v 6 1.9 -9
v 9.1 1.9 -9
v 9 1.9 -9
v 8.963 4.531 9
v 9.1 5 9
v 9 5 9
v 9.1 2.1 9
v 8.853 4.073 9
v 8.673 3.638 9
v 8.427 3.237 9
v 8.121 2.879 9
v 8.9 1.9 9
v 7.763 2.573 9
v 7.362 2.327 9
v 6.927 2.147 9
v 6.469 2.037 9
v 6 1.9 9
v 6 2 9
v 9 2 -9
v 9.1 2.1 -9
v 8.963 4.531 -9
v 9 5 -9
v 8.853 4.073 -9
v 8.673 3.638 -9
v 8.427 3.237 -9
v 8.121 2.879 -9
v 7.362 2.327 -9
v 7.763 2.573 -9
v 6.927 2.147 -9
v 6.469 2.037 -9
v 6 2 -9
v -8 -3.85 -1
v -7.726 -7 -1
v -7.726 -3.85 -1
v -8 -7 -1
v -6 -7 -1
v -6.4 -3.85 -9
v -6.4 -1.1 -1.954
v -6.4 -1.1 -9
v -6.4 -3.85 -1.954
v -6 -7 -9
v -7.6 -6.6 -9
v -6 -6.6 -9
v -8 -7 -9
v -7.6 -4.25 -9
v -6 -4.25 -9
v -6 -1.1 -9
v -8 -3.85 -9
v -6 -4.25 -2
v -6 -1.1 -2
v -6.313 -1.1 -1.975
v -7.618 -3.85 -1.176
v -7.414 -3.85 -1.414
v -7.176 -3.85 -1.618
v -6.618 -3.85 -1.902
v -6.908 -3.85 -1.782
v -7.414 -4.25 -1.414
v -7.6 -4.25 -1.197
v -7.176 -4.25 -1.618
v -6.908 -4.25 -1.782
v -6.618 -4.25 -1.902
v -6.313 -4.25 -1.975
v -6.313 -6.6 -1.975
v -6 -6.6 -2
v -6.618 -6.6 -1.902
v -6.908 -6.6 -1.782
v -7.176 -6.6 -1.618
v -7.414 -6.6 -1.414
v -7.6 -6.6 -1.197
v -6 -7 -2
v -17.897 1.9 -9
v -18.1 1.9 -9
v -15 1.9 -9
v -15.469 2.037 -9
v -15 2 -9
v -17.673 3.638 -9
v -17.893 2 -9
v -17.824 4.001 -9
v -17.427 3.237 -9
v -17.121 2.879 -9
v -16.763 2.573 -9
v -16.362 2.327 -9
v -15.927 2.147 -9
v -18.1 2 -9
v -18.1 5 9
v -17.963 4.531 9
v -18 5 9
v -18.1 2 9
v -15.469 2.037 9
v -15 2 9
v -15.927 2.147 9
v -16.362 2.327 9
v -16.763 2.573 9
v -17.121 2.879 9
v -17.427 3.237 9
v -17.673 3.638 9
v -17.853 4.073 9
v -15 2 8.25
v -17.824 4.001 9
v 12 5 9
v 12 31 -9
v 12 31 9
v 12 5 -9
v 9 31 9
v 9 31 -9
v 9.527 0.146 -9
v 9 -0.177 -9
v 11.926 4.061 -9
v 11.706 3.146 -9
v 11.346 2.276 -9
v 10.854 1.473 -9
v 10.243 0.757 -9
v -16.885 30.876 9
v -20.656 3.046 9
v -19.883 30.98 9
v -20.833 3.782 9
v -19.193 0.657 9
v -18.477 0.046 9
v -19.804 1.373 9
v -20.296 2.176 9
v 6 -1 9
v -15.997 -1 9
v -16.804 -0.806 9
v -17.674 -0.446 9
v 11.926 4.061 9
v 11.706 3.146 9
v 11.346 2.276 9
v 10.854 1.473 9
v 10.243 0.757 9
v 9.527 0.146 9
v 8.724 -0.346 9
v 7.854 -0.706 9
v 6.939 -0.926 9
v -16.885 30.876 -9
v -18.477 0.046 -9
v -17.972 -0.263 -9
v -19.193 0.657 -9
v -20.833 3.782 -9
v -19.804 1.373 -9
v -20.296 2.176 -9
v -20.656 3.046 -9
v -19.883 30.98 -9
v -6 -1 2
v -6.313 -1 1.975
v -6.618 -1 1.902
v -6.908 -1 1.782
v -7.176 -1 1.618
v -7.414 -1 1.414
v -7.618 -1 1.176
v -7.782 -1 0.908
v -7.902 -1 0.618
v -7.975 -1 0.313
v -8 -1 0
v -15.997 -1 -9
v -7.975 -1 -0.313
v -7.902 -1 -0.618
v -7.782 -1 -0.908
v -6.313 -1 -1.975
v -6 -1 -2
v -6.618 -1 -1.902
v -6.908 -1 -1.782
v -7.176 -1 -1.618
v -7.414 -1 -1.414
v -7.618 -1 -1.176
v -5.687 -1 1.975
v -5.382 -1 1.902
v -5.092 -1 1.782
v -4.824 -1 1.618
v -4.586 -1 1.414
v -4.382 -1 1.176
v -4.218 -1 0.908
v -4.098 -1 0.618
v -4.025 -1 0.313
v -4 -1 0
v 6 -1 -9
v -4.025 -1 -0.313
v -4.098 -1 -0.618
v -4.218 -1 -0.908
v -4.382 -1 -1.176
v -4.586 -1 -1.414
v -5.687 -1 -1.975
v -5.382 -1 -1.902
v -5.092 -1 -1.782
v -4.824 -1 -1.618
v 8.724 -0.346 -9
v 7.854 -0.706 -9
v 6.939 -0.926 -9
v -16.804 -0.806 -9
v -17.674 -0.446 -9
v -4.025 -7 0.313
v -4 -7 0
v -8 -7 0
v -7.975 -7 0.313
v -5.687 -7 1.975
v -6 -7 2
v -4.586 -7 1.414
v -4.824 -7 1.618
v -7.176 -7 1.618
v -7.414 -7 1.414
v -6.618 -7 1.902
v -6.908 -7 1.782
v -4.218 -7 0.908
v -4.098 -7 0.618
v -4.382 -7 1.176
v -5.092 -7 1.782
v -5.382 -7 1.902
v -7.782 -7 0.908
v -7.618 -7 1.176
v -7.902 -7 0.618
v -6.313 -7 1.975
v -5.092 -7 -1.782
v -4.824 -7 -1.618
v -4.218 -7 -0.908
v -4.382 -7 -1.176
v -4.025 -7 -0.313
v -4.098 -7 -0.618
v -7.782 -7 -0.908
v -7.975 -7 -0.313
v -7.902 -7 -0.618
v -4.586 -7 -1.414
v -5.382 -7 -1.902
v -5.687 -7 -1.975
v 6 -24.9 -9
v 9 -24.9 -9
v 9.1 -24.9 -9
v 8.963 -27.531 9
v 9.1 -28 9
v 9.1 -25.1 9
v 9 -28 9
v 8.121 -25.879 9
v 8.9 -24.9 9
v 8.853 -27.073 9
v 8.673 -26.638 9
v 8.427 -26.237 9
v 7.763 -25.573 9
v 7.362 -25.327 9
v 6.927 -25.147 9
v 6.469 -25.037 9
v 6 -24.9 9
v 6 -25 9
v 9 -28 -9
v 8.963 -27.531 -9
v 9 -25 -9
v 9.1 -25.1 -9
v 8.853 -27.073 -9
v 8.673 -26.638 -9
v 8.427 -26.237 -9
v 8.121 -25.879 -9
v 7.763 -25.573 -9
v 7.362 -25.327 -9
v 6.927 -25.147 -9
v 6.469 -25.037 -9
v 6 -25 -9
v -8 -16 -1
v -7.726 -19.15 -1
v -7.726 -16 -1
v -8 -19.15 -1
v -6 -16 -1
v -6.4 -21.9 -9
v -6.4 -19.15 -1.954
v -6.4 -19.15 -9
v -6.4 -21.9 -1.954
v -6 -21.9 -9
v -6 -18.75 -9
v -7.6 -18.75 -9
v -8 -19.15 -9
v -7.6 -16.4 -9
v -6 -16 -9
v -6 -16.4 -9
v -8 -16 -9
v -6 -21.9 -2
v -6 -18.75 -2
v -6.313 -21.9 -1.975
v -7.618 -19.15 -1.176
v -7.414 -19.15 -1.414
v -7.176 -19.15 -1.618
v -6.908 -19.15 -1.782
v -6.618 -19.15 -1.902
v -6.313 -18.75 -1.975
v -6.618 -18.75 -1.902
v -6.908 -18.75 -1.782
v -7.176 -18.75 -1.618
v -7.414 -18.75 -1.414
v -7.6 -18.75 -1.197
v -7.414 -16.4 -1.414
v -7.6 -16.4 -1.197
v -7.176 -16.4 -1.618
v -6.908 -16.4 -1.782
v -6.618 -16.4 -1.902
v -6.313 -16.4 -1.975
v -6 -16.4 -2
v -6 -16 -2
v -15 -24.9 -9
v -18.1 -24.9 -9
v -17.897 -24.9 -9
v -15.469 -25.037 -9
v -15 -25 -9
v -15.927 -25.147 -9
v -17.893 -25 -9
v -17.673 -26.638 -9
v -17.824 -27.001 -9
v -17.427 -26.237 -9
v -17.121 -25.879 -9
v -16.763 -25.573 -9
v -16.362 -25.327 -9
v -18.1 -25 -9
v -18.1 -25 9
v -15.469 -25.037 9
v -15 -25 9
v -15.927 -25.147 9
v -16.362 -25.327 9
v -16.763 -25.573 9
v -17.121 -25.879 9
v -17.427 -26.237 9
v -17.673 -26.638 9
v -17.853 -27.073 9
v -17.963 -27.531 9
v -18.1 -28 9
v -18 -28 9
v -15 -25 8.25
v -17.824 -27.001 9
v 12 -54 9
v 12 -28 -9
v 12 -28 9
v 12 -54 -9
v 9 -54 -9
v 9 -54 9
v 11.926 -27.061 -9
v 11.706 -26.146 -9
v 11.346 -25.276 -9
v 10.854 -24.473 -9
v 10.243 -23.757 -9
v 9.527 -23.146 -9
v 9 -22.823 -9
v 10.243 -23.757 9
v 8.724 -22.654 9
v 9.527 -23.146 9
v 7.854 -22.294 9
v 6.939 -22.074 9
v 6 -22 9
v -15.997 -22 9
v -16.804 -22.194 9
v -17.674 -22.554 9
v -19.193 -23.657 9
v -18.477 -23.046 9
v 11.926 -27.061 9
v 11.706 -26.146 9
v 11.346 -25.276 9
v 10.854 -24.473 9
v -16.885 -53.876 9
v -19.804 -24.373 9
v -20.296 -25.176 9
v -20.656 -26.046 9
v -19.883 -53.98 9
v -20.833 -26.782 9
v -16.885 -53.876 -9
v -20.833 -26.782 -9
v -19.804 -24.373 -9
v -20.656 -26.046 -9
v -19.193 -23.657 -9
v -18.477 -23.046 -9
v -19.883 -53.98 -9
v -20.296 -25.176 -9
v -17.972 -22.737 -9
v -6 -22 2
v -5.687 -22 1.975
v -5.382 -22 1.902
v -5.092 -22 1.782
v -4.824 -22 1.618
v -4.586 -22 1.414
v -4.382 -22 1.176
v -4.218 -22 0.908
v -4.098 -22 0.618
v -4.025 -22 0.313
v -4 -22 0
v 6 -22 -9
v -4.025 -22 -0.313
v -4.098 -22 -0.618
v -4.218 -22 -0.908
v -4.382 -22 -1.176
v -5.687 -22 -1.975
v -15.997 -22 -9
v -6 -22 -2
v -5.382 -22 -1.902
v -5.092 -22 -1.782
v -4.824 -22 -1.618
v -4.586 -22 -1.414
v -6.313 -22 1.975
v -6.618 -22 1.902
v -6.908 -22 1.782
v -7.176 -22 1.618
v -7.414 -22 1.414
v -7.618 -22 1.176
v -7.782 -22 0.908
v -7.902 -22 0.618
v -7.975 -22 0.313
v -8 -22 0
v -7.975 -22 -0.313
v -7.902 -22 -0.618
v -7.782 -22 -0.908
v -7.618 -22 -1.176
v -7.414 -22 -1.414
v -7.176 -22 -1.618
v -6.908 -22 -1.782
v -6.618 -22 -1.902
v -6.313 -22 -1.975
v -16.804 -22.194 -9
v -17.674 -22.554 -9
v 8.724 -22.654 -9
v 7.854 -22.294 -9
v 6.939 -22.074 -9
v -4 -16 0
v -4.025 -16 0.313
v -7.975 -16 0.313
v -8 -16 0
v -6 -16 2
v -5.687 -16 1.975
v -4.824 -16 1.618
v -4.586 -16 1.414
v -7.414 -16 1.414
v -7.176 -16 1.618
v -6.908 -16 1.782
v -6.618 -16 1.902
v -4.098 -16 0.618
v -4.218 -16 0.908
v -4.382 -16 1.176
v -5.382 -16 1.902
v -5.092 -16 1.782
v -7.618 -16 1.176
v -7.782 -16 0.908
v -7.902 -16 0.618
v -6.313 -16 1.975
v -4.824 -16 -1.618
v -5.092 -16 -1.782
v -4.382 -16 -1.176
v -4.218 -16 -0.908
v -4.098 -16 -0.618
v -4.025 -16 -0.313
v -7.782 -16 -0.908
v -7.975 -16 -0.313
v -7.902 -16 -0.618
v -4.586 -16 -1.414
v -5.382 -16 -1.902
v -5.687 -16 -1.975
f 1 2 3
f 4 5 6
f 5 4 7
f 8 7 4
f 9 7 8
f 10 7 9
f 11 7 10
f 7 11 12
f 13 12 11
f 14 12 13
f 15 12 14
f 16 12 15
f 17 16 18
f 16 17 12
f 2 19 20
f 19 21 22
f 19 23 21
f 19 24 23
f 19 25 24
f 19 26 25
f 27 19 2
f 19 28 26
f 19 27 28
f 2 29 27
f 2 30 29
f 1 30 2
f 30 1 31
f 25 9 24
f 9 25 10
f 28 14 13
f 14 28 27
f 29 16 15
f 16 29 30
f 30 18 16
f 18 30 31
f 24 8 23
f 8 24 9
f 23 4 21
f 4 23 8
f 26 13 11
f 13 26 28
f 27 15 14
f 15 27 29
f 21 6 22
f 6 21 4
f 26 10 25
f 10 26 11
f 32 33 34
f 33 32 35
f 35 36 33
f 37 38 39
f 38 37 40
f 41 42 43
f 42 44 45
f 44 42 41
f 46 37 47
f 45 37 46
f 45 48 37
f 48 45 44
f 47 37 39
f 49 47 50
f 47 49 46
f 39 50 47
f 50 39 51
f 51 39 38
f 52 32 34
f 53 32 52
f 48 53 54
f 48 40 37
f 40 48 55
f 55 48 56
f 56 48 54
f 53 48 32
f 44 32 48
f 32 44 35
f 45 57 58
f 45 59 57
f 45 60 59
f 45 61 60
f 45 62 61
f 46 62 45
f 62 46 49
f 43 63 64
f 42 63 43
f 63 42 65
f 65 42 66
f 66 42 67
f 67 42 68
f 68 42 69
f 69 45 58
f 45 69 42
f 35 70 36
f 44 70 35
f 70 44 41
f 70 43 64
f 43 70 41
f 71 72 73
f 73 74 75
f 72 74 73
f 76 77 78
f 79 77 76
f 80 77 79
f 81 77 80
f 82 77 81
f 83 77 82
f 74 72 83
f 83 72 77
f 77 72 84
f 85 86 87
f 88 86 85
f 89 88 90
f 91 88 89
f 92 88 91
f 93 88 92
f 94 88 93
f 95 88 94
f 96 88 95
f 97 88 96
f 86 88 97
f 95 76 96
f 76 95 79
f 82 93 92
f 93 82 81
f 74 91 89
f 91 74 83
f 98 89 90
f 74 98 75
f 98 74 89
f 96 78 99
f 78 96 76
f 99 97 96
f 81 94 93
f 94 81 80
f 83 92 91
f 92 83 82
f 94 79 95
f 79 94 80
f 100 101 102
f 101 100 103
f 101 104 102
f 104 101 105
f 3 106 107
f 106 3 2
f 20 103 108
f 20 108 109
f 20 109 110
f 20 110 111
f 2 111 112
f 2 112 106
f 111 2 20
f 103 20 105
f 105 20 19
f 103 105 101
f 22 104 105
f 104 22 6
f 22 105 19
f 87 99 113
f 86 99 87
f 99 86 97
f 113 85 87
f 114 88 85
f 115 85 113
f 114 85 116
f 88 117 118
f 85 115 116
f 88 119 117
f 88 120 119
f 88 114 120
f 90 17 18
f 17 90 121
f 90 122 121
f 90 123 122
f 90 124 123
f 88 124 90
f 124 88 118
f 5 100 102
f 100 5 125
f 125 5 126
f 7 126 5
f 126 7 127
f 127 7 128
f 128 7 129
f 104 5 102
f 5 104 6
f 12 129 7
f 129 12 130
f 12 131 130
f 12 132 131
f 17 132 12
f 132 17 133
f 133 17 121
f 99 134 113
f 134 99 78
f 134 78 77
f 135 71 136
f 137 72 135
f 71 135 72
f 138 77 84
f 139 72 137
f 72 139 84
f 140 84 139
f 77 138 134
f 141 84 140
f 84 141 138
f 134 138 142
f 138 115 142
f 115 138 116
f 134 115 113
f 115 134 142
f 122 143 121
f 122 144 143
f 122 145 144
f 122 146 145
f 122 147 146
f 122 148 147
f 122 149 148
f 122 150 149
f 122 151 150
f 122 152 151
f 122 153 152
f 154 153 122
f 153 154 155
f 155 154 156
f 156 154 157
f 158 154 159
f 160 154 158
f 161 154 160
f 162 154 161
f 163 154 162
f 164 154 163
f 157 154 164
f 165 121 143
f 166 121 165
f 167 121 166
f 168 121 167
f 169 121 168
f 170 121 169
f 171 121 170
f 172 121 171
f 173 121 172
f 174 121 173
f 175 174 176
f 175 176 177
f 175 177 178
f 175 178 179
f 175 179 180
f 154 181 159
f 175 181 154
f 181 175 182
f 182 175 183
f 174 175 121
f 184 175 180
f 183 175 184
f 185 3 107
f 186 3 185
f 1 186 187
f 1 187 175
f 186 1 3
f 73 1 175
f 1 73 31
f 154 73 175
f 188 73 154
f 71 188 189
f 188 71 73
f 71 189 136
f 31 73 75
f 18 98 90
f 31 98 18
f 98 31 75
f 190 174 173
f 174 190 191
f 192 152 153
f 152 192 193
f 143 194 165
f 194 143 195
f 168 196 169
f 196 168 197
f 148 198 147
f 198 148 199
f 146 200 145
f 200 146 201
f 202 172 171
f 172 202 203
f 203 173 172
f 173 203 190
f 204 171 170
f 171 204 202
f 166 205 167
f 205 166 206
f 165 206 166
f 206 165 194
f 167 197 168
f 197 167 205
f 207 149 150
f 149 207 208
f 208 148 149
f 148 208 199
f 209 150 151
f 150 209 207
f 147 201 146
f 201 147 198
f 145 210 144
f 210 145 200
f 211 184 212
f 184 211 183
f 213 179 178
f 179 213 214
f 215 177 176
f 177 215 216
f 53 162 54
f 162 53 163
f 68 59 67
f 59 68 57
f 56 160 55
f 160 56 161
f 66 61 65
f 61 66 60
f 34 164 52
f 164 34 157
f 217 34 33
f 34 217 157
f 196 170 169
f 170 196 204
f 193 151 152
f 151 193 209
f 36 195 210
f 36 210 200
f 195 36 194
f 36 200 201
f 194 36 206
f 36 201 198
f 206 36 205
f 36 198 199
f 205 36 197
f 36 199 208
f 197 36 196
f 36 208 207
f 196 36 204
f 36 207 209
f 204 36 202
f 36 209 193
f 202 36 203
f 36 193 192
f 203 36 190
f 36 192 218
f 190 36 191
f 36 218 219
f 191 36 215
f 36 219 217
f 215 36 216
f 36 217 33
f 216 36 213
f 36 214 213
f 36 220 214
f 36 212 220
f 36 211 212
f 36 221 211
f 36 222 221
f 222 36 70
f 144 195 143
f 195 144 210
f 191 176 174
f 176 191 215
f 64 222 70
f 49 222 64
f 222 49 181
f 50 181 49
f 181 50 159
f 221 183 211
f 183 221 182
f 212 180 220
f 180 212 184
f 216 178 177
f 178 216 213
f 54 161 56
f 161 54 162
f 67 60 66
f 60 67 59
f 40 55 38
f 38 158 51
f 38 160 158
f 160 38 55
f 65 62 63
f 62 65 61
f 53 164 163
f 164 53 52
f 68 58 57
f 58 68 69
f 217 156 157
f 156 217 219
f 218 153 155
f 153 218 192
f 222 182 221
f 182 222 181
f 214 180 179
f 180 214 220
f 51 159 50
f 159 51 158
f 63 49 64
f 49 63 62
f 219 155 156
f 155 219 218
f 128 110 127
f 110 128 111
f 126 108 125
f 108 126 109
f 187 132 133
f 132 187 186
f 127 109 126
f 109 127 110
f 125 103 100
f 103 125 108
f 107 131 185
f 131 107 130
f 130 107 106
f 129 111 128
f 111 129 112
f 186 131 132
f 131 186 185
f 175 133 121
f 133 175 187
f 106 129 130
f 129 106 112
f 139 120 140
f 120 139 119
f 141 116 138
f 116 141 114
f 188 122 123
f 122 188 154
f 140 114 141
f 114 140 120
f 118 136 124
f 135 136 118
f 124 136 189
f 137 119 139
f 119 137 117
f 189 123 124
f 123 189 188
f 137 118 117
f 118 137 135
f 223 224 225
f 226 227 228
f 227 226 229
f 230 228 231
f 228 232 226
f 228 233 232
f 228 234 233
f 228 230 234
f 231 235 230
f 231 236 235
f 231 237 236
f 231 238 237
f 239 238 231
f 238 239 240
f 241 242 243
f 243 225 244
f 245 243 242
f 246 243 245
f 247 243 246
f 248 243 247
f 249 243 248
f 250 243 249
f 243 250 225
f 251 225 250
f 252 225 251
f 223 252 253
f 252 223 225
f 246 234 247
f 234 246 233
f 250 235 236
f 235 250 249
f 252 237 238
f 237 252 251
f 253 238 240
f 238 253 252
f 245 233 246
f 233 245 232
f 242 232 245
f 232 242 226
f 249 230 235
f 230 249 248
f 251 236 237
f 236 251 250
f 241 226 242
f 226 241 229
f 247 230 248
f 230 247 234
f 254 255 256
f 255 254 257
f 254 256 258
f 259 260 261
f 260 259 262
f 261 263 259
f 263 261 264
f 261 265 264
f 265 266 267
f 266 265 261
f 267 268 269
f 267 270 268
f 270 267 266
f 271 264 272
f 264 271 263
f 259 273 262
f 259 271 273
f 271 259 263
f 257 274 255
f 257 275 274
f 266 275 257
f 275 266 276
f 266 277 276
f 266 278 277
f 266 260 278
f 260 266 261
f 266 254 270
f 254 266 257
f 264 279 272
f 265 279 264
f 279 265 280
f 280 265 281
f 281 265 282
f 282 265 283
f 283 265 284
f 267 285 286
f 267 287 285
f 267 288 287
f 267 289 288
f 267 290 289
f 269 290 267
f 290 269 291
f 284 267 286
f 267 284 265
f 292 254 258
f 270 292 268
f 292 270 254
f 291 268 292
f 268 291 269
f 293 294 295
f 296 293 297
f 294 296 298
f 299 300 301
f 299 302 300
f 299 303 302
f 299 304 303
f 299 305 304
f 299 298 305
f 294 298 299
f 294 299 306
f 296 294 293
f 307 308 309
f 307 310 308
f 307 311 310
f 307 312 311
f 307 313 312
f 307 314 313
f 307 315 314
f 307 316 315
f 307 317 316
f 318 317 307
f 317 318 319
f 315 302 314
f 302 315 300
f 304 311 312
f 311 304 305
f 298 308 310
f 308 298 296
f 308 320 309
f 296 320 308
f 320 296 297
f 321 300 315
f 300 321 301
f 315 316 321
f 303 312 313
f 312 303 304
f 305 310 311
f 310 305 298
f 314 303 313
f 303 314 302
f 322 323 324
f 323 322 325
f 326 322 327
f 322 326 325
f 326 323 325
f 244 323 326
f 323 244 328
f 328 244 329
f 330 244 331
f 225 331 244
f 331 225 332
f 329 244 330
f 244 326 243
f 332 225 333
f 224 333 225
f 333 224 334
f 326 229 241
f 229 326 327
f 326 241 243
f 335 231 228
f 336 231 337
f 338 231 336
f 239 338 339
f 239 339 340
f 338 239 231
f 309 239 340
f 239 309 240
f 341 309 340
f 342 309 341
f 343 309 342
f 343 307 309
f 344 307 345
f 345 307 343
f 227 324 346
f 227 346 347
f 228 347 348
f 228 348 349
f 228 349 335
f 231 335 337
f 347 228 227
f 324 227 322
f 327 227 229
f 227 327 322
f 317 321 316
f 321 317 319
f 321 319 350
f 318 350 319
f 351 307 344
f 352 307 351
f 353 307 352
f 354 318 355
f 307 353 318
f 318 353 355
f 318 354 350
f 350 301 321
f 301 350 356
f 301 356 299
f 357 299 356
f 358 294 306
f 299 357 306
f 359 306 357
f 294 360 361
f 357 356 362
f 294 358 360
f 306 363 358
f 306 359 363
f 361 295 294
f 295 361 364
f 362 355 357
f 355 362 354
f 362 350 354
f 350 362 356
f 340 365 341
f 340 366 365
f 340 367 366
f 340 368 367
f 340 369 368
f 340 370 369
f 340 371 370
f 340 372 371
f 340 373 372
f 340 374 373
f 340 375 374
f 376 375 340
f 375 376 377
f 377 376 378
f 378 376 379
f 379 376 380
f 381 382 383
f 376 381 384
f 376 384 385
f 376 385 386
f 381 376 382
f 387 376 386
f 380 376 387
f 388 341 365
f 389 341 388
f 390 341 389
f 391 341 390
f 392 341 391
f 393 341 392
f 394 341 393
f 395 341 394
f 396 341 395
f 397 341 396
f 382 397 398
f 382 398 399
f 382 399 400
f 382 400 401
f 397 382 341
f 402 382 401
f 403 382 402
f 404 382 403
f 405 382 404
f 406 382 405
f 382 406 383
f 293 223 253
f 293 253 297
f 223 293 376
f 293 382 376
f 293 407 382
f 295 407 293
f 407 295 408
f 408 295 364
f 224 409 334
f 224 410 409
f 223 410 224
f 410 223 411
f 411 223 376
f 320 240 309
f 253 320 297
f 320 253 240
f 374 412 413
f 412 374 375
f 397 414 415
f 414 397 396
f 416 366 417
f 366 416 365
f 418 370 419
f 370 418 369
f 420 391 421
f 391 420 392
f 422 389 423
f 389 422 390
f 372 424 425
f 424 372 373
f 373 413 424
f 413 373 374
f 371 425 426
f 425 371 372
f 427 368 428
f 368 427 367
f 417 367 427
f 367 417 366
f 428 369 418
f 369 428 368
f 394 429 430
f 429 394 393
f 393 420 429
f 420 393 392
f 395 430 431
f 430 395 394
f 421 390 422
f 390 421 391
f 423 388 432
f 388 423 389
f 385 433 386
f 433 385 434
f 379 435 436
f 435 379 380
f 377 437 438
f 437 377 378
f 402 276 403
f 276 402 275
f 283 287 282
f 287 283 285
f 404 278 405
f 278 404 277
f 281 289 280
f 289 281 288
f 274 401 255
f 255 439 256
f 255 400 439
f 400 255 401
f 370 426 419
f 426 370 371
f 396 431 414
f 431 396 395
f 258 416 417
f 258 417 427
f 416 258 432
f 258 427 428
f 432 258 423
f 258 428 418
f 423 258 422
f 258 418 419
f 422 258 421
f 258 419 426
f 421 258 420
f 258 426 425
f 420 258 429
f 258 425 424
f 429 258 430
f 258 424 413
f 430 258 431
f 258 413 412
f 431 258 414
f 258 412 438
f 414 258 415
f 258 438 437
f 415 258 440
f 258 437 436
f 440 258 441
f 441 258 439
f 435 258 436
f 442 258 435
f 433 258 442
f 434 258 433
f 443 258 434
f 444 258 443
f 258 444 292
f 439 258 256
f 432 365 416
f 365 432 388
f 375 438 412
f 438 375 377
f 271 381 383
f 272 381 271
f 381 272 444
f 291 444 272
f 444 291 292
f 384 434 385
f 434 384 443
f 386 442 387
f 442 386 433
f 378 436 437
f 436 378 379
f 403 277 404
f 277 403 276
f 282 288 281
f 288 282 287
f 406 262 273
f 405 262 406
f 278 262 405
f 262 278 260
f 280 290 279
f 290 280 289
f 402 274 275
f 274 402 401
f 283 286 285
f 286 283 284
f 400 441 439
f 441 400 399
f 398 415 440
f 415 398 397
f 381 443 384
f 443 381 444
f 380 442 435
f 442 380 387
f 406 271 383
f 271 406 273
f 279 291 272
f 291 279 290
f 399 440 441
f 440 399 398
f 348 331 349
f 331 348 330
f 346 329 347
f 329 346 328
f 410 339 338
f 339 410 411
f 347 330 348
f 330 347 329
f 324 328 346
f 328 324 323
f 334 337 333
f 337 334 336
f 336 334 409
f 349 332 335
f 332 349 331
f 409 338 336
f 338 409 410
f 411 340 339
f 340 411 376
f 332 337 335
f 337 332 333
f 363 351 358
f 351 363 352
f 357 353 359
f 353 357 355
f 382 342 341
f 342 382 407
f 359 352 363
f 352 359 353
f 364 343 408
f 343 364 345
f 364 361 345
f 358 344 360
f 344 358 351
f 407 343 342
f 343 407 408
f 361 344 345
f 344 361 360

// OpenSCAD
// file: gear_parameters.scad
Circular_pitch = 262;

Motor_teeth = 10;
Gear_height = 23.4;
Motor_pitch                      = (Motor_teeth*Circular_pitch/360);
Motor_pitch_diametrial           = Motor_teeth/(2*Motor_pitch);
Motor_outer_radius               = Motor_pitch + 1/Motor_pitch_diametrial;

Spool_teeth = 80;
Spool_r = 25;
Spool_height = 8;
Spool_pitch                      = (Spool_teeth*Circular_pitch/360);
Spool_pitch_diametrial           = Spool_teeth/(2*Spool_pitch);
Spool_outer_radius               = Spool_pitch + 1/Spool_pitch_diametrial;

Torx_depth = 5;
// file: sweep.scad
// sweep.scad
//
// This code is copied from
// https://github.com/openscad/list-comprehension-demos
// and
// https://github.com/openscad/scad-utils
// to make hangprinter repo self-contained
// It was included in order to make the worm drive parametric
// In future OpenSCAD (or other script CAD programs)
// worm drives should be will be more easily constructed without
// this user space defined sweep operation.
// See OpenSCAD discussion at:
// https://github.com/openscad/openscad/issues/114

// Look into files
// lists.scad
// X transformations.scad
// linalg.scad
// se3.scad
// so3.scad


// Include modules and fcts:

/// linalg.scad
function vec3(p) = len(p) < 3 ? concat(p,0) : p;
function vec4(p) = let (v3=vec3(p)) len(v3) < 4 ? concat(v3,1) : v3;
function take3(v) = [v[0],v[1],v[2]];
function tail3(v) = [v[3],v[4],v[5]];
function construct_Rt(R,t) = [concat(R[0],t[0]),concat(R[1],t[1]),concat(R[2],t[2]),[0,0,0,1]];

/// so3.scad

function se3_exp_2(t,w) = se3_exp_2_0(t,w,w*w);
function se3_exp_2_0(t,w,theta_sq) =
se3_exp_23(
	so3_exp_2(theta_sq),
	C = (1.0 - theta_sq/20) / 6,
	t=t,w=w);

// Taylor series expansions close to 0
function so3_exp_1(theta_sq) = [
	1 - 1/6*theta_sq,
	0.5
];

function rodrigues_so3_exp(w, A, B) = [
  [1.0 - B*(w[1]*w[1] + w[2]*w[2]), B*(w[0]*w[1]) - A*w[2],          B*(w[0]*w[2]) + A*w[1]],
  [B*(w[0]*w[1]) + A*w[2],          1.0 - B*(w[0]*w[0] + w[2]*w[2]), B*(w[1]*w[2]) - A*w[0]],
  [B*(w[0]*w[2]) - A*w[1],          B*(w[1]*w[2]) + A*w[0],          1.0 - B*(w[0]*w[0] + w[1]*w[1])]
];

function so3_exp_3_0(theta_deg, inv_theta) = [
	sin(theta_deg) * inv_theta,
	(1 - cos(theta_deg)) * (inv_theta * inv_theta)
];

/// se3.scad
function combine_se3_exp(w, ABt) = construct_Rt(rodrigues_so3_exp(w, ABt[0], ABt[1]), ABt[2]);
function se3_exp_1(t,w) = concat(
	so3_exp_1(w*w),
	[t + 0.5 * cross(w,t)]
);

function se3_exp_3(t,w) = se3_exp_3_0(t,w,sqrt(w*w)*180/PI,1/sqrt(w*w));

function se3_exp_23(AB,C,t,w) =
[AB[0], AB[1], t + AB[1] * cross(w,t) + C * cross(w,cross(w,t)) ];

function se3_exp_3_0(t,w,theta_deg,inv_theta) =
se3_exp_23(
	so3_exp_3_0(theta_deg = theta_deg, inv_theta = inv_theta),
	C = (1 - sin(theta_deg) * inv_theta) * (inv_theta * inv_theta),
t=t,w=w);

function se3_exp(mu) = se3_exp_0(t=take3(mu),w=tail3(mu)/180*PI);

function se3_exp_0(t,w) =
combine_se3_exp(w,
// Evaluate by Taylor expansion when near 0
	w*w < 1e-8
	? se3_exp_1(t,w)
	: w*w < 1e-6
	  ? se3_exp_2(t,w)
	  : se3_exp_3(t,w)
);


/// lists.scad
/*!
  Flattens a list one level:

  flatten([[0,1],[2,3]]) => [0,1,2,3]
*/
function flatten(list) = [ for (i = list, v = i) v ];
/*!
  Extracts a subarray from index begin (inclusive) to end (exclusive)

  subarray([1,2,3,4], 1, 2) => [2,3]
*/
function subarray(list,begin=0,end=-1) = [
    let(end = end < 0 ? len(list) : end)
      for (i = [begin : 1 : end-1])
        list[i]
];

/// transformations.scad
//********* Create modifying matrices ***************//
/*!
  Creates a rotation matrix

  xyz = euler angles = rz * ry * rx
  axis = rotation_axis * rotation_angle
*/
function rotation(xyz=undef, axis=undef) =
	xyz != undef && axis != undef ? undef :
	xyz == undef  ? se3_exp([0,0,0,axis[0],axis[1],axis[2]]) :
	len(xyz) == undef ? rotation(axis=[0,0,xyz]) :
	(len(xyz) >= 3 ? rotation(axis=[0,0,xyz[2]]) : identity4()) *
	(len(xyz) >= 2 ? rotation(axis=[0,xyz[1],0]) : identity4()) *
(len(xyz) >= 1 ? rotation(axis=[xyz[0],0,0]) : identity4());

/*!
  Creates a scaling matrix
*/
function scaling(v) = [
	[v[0],0,0,0],
	[0,v[1],0,0],
	[0,0,v[2],0],
	[0,0,0,1],
];

/*!
  Creates a translation matrix
*/
function translation(v) = [
	[1,0,0,v[0]],
	[0,1,0,v[1]],
	[0,0,1,v[2]],
	[0,0,0,1],
];


function project(x) = subarray(x,end=len(x)-1) / x[len(x)-1];

function transform(m, list) = [for (p=list) project(m * vec4(p))];

function to_3d(list) = [ for(v = list) vec3(v) ];

module sweep(shape, path_transforms, closed=false) {

    pathlen = len(path_transforms);
    segments = pathlen + (closed ? 0 : -1);
    shape3d = to_3d(shape);

    function sweep_points() =
      flatten([for (i=[0:pathlen-1])
        transform(path_transforms[i], shape3d)]);

    function loop_faces() = [let (facets=len(shape3d))
        for(s=[0:segments-1], i=[0:facets-1])
          [(s%pathlen) * facets + i,
           (s%pathlen) * facets + (i + 1) % facets,
           ((s + 1) % pathlen) * facets + (i + 1) % facets,
           ((s + 1) % pathlen) * facets + i]];

    bottom_cap = closed ? [] : [[for (i=[len(shape3d)-1:-1:0]) i]];
    top_cap = closed ? [] : [
      [for (i=[0:len(shape3d)-1])
        i+len(shape3d)*(pathlen-1)]];
    polyhedron(points = sweep_points(),
               faces  = concat(loop_faces(),
                               bottom_cap,
                               top_cap),
               convexity=5);
}
// file: lineroller_parameters.scad
include <gear_parameters.scad>

Bearing_width  = 5;
Bearing_r      = 13/2;
Bearing_small_r = 10/2;
Bearing_bore_r = 4/2;

Lineroller_wall_th = 2.3;
// The height that lineroller_ABC_winch will have if we include the bearing
Tower_h = Gap_between_sandwich_and_plate+Gear_height + Spool_height/2 + Bearing_small_r + Bearing_r;

Bearing_wall = 1;
Base_th = 2.8;
Depth_of_lineroller_tower = Bearing_width + 2*Wall_th; // 9
Depth_of_lineroller_base = Depth_of_lineroller_tower + 9; // 18
Ptfe_r = 2.1;

Lineroller_base_r = Depth_of_lineroller_base/2-1*(Ptfe_r+2);
// file: lineroller_ABC_winch.scad
include <parameters.scad>
include <lineroller_parameters.scad>
use <sweep.scad>
use <util.scad>

base();
module base(base_th = Base_th, flerp0 = 6, flerp1 = 6){
  l = Depth_of_lineroller_base + 2*Bearing_r + 2*Bearing_wall + flerp0 + flerp1;
  for(k=[0,1])
  translate([+k*(l/2+Depth_of_lineroller_base/2),-k*(l/2-Depth_of_lineroller_base/2),0])
    translate([-Depth_of_lineroller_base/2-flerp0, -Depth_of_lineroller_base/2, 0])
    rotate([0,0,k*90])
    difference(){
      rounded_cube2([l, Depth_of_lineroller_base, base_th], Lineroller_base_r, $fn=13*4);
      for(x=[Depth_of_lineroller_base/2-2, l - (Depth_of_lineroller_base/2-2)])
        translate([x, Depth_of_lineroller_base/2, -1])
          cylinder(d=4, h=base_th+2, $fs=1);
    }
}

function foot_shape(r, e, f, w) = concat([
  for(i=[90:10:181])
     [-e-Lineroller_wall_th+r,f+w-r] + r*[cos(i), sin(i)]
  ],
  [for(i=[180:10:271])
     [-e-Lineroller_wall_th+r,-f+r] + r*[cos(i), sin(i)]
  ],
  [for(i=[270:10:361])
     [-r,-f+r] + r*[cos(i), sin(i)]
  ],
  [for(i=[0:10:91])
     [-r,w+f-r] + r*[cos(i), sin(i)]
  ]);

function wall_shape(a, w, extr) = 1 - (sin(a*90))*extr/((w/2)+extr); // a 0 -> 1

lineroller_ABC_winch(edge_start=40, edge_stop = 180-40);
module lineroller_ABC_winch(base_th = Base_th, edge_start=0, edge_stop=180, tower_h = Tower_h, bearing_width=Bearing_width){

  module wall(){
    // Foot parameters
    c = 10;
    e = 5.52;
    f = 2.5; // extra x-length for swung wall
    w = Bearing_r*2+2*Bearing_wall;

    q = 3.9;
    round_part = 0.65;
    // Main block
    r2 = Bearing_bore_r+1.3;
    foot_shape_r = 1.0;
    translate([0, -(bearing_width + 2*Wall_th)/2, 0])
      rotate([-90,-90,0]){
        difference(){
          union(){
            // Foot with a swing
            translate([0,0,Lineroller_wall_th])
            sweep(foot_shape(foot_shape_r, e, f, w), concat(
                   [for (h = [base_th/(tower_h-2*Bearing_r+q)-0.01:0.05:1.00001])
                     translation([(tower_h-2*Bearing_r+q)*h,0,0])
                     * translation([0,w/2,0])
                     * scaling([1, wall_shape(h, w, f), wall_shape(h, Lineroller_wall_th, e/2)])
                     * translation([0,-w/2,0])
                     * rotation([0,-90,0])
                     ],

                   [for (h = [0:(1 - 0.01)/40:1])
                     translation([tower_h-2*Bearing_r+q+h*(1*Bearing_r+Bearing_wall),0,0])
                     * translation([0,w/2,0])
                     * scaling([1,wall_shape(1, w, f)*((1-round_part) + round_part*sqrt(1-(h)*(h))),
                                  wall_shape(1, Lineroller_wall_th, e/2)])
                     * translation([0,-w/2,0])
                     * rotation([0,-90,0])
                     ]
                     ));

            translate([tower_h-Bearing_r,Bearing_r+Bearing_wall,0])
              cylinder(r=r2, h=Lineroller_wall_th+0.4, $fs=1);
          }
          translate([tower_h-Bearing_r,Bearing_r+Bearing_wall,-1])
            cylinder(d=Bearing_bore_r*2+0.3, h=Lineroller_wall_th+0.5+2, $fs=1);
        }
      }
    // Edge to prevent line from falling of...
    a = 1.5;
    b= 0.8;
    rot_r = Bearing_r+b;
    difference(){
      translate([Bearing_r+Bearing_wall, -bearing_width/2-0.8, tower_h - Bearing_r])
        sweep([[0,0], [0,-0.5], [b+a, -0.5], [b+a,0], [b, a], [0, a]],
            [for (ang=[edge_start+0.01:((edge_stop-edge_start)-0.03)/100:edge_stop-0.01])
            rotation([0,ang,0])
            * translation([rot_r,0,0])
            * scaling([
              1,
              (ang<edge_start+a*rot_r) ? sqrt(1-pow(a*rot_r-(ang-edge_start),2)/pow(a*rot_r,2)) :
              (ang>edge_stop-a*rot_r) ? sqrt(1-pow(ang-(edge_stop - a*rot_r),2)/pow(a*rot_r,2)) : 1,
              1])
            ]);
      translate([-10,-10,0])
        cube([10,10,tower_h]);
      translate([2*Bearing_r+2*Bearing_wall,-10,0])
        cube([10,10,tower_h]);
    }
  }

  wall();
  mirror([0,1,0])
    wall();
}
// file: parameters.scad
// Parameters shared between modules
Base_th = 2.8;
Beam_width = 15;
Wiggle = 0.25;
Fat_beam_width = Beam_width + Wiggle;
Beam_length = 400;
Wall_th = 2.5;
Min_beam_width = 12.5;
Max_beam_width = 17.5;
Zip_th = 2;
Zip_h = Zip_th + Max_beam_width - Min_beam_width;
Zip_w = 5.0;
Nema17_cube_width          = 42.43;
Nema17_screw_hole_width    = 43.74; // Opposite corner screws
Nema17_ring_diameter       = 22;
Nema17_cube_height         = 39.36;
Nema17_shaft_height        = 63.65;
Nema17_ring_height         = 2;
Nema17_shaft_radius        = 5/2;
Nema23_cube_width          = 56;
Nema23_screw_hole_width    = 66.61;
Nema23_ring_diameter       = 38;
Nema23_cube_height         = 56;
Nema23_shaft_radius        = 3.175;

b608_outer_dia = 22.2;
b608_width = 7.05;
Gap_between_sandwich_and_plate = 1.5 + Base_th; // 1.5 mm for wiggle
Motor_bracket_flerp_r = 6;
Motor_bracket_flerp = 14;
Motor_bracket_cw = Nema17_cube_width + 6;
Motor_bracket_att_ang = 50;
Mounting_screw_d = 4.5;
Mounting_screw_head_d = 14;
Spool_outer_wall_th = 4;

// Corner clamp parameters
Cc_l1 = (Fat_beam_width+2*Wall_th)*2*sqrt(3);
Cc_rad_b = 4;
Cc_action_point_from_mid = Cc_l1/sqrt(3)-2*Cc_rad_b-1.3;  // 1.3 chosen arbitrarily
Cc_plastic_length = sqrt(Cc_action_point_from_mid*Cc_action_point_from_mid
                       - (Cc_action_point_from_mid/2)*(Cc_action_point_from_mid/2));

// The distance between the two action points on the mover
Sidelength = Beam_length + 2*Cc_plastic_length;

/////// Layout parameters ////////////
Ext_sidelength = Sidelength+77;
Additional_added_plate_side_length = 10;
Yshift_top_plate = -25;

/////// Gear parameters ////////////
Circular_pitch = 262;
Motor_teeth = 10;
Gear_height = 21.4-3;
Motor_pitch                      = (Motor_teeth*Circular_pitch/360);
Motor_pitch_diametrial           = Motor_teeth/(2*Motor_pitch);
Motor_outer_radius               = Motor_pitch + 1/Motor_pitch_diametrial;
Spool_teeth = 100;
Spool_r = 55;
Spool_height = 8;
Spool_pitch                      = (Spool_teeth*Circular_pitch/360);
Spool_pitch_diametrial           = Spool_teeth/(2*Spool_pitch);
Spool_outer_radius               = Spool_pitch + 1/Spool_pitch_diametrial;
Torx_depth = 5;
Motor_bracket_depth = Gear_height+1+7+Nema17_ring_height+1+Gap_between_sandwich_and_plate;
Spool_core_flerp0 = 16+3;

/////// Lineroller parameters ////////////
b623_width  = 4;
b623_bore_r = 3/2;
b623_vgroove_big_r = 12/2;
b623_vgroove_small_r = 10/2;
Lineroller_wall_th = 2.3;
// The height that lineroller_ABC_winch will have if we include the bearing
Tower_h = Gap_between_sandwich_and_plate+Gear_height
         + Spool_height/2
         + b623_vgroove_small_r
         + b623_vgroove_big_r;
Bearing_wall = 1;
Depth_of_lineroller_tower = b623_width + 2*Wall_th; // 9
Depth_of_lineroller_base = Depth_of_lineroller_tower + 9; // 18
Ptfe_r = 2.1;
Lineroller_base_r = Depth_of_lineroller_base/2-1*(Ptfe_r+2);
Screw_h = 2;
Screw_head_h = 2;
Spool_center_bearing_wall_th = 5;
// main file
include <parameters.scad>
use <util.scad>
use <lineroller_ABC_winch.scad>

base_th = 6;
leg_th = 3;
l = Depth_of_lineroller_base + 2*b623_vgroove_big_r + 2*Bearing_wall;
track_l = l;
head_r = 3.5;
screw_r = 1.5;
post_r = 2;
receiver_r = post_r + 0.2;
tower_h = 17 + b623_vgroove_big_r;
x_len = Depth_of_lineroller_base-4; // For the two "wings" with tracks for screws
y_extra = -2.0; // For the two "wings" with tracks for screws


translate([0,-Depth_of_lineroller_base-5,0])
  mirror([0,1,0])
    clip();

clip();

module clip(){
  d = Depth_of_lineroller_base;
  length_clip = 30;
  offset_post = length_clip / 2;
  
  translate([length_clip / 2, -d * 2, 0])
  rotate([90, 0, 0])
  translate([-base_th, 0, -l])
    difference() {
        union() {
            //clip side 1
            translate([0, -d / 2, -leg_th])
            rotate([0, 90, 0])
            cube([l, d, leg_th]);
            
            //clip side 2
            translate([-length_clip, -d / 2, -leg_th])
            rotate([0, 88, 0])
            cube([l, d, leg_th]);
      
            //shelf
            rotate([0, 0, 90])
            translate([-d / 2, -leg_th, -base_th])
            cube([d, length_clip + leg_th, leg_th]);
              
            //post
            translate([-offset_post, 0, -leg_th])
            cylinder(d=post_r * 2, h=base_th, $fn=10*4);
                            
            //post lattice
            translate([-offset_post, -post_r / 2, 0.5 - leg_th])
            rotate([90, 0, -90])
            support_rectangle([post_r, base_th - 0.5, d / 2 - post_r / 2]);
            
            //rounded support (bottom 1)
            translate([0, -d/2, -base_th])
            rotate([0, 90, 90])
            inner_round_corner(r=base_th / 2, h=d, $fn=4*10);   
            
            //rounded support (bottom 2)
            translate([-length_clip + leg_th, d / 2, -base_th])
            rotate([180, 90, 90])
            inner_round_corner(r=base_th / 2, h=d, $fn=4*10);   

        };

        
        //rounded edge 1
        translate([leg_th, -d/2 - 0.01, -leg_th])
        rotate([0, 90, 90])
        inner_round_corner(r=2 * base_th / 2, h=d + 0.02, $fn=4*10);
        
        //rounded edge 2
        translate([-length_clip + 0.05, d / 2 + 0.01, 0.1 - leg_th])
        rotate([180, 90, 90])
        inner_round_corner(r=2 * base_th / 2, h=d + 0.02, $fn=4*10);
    }

}
